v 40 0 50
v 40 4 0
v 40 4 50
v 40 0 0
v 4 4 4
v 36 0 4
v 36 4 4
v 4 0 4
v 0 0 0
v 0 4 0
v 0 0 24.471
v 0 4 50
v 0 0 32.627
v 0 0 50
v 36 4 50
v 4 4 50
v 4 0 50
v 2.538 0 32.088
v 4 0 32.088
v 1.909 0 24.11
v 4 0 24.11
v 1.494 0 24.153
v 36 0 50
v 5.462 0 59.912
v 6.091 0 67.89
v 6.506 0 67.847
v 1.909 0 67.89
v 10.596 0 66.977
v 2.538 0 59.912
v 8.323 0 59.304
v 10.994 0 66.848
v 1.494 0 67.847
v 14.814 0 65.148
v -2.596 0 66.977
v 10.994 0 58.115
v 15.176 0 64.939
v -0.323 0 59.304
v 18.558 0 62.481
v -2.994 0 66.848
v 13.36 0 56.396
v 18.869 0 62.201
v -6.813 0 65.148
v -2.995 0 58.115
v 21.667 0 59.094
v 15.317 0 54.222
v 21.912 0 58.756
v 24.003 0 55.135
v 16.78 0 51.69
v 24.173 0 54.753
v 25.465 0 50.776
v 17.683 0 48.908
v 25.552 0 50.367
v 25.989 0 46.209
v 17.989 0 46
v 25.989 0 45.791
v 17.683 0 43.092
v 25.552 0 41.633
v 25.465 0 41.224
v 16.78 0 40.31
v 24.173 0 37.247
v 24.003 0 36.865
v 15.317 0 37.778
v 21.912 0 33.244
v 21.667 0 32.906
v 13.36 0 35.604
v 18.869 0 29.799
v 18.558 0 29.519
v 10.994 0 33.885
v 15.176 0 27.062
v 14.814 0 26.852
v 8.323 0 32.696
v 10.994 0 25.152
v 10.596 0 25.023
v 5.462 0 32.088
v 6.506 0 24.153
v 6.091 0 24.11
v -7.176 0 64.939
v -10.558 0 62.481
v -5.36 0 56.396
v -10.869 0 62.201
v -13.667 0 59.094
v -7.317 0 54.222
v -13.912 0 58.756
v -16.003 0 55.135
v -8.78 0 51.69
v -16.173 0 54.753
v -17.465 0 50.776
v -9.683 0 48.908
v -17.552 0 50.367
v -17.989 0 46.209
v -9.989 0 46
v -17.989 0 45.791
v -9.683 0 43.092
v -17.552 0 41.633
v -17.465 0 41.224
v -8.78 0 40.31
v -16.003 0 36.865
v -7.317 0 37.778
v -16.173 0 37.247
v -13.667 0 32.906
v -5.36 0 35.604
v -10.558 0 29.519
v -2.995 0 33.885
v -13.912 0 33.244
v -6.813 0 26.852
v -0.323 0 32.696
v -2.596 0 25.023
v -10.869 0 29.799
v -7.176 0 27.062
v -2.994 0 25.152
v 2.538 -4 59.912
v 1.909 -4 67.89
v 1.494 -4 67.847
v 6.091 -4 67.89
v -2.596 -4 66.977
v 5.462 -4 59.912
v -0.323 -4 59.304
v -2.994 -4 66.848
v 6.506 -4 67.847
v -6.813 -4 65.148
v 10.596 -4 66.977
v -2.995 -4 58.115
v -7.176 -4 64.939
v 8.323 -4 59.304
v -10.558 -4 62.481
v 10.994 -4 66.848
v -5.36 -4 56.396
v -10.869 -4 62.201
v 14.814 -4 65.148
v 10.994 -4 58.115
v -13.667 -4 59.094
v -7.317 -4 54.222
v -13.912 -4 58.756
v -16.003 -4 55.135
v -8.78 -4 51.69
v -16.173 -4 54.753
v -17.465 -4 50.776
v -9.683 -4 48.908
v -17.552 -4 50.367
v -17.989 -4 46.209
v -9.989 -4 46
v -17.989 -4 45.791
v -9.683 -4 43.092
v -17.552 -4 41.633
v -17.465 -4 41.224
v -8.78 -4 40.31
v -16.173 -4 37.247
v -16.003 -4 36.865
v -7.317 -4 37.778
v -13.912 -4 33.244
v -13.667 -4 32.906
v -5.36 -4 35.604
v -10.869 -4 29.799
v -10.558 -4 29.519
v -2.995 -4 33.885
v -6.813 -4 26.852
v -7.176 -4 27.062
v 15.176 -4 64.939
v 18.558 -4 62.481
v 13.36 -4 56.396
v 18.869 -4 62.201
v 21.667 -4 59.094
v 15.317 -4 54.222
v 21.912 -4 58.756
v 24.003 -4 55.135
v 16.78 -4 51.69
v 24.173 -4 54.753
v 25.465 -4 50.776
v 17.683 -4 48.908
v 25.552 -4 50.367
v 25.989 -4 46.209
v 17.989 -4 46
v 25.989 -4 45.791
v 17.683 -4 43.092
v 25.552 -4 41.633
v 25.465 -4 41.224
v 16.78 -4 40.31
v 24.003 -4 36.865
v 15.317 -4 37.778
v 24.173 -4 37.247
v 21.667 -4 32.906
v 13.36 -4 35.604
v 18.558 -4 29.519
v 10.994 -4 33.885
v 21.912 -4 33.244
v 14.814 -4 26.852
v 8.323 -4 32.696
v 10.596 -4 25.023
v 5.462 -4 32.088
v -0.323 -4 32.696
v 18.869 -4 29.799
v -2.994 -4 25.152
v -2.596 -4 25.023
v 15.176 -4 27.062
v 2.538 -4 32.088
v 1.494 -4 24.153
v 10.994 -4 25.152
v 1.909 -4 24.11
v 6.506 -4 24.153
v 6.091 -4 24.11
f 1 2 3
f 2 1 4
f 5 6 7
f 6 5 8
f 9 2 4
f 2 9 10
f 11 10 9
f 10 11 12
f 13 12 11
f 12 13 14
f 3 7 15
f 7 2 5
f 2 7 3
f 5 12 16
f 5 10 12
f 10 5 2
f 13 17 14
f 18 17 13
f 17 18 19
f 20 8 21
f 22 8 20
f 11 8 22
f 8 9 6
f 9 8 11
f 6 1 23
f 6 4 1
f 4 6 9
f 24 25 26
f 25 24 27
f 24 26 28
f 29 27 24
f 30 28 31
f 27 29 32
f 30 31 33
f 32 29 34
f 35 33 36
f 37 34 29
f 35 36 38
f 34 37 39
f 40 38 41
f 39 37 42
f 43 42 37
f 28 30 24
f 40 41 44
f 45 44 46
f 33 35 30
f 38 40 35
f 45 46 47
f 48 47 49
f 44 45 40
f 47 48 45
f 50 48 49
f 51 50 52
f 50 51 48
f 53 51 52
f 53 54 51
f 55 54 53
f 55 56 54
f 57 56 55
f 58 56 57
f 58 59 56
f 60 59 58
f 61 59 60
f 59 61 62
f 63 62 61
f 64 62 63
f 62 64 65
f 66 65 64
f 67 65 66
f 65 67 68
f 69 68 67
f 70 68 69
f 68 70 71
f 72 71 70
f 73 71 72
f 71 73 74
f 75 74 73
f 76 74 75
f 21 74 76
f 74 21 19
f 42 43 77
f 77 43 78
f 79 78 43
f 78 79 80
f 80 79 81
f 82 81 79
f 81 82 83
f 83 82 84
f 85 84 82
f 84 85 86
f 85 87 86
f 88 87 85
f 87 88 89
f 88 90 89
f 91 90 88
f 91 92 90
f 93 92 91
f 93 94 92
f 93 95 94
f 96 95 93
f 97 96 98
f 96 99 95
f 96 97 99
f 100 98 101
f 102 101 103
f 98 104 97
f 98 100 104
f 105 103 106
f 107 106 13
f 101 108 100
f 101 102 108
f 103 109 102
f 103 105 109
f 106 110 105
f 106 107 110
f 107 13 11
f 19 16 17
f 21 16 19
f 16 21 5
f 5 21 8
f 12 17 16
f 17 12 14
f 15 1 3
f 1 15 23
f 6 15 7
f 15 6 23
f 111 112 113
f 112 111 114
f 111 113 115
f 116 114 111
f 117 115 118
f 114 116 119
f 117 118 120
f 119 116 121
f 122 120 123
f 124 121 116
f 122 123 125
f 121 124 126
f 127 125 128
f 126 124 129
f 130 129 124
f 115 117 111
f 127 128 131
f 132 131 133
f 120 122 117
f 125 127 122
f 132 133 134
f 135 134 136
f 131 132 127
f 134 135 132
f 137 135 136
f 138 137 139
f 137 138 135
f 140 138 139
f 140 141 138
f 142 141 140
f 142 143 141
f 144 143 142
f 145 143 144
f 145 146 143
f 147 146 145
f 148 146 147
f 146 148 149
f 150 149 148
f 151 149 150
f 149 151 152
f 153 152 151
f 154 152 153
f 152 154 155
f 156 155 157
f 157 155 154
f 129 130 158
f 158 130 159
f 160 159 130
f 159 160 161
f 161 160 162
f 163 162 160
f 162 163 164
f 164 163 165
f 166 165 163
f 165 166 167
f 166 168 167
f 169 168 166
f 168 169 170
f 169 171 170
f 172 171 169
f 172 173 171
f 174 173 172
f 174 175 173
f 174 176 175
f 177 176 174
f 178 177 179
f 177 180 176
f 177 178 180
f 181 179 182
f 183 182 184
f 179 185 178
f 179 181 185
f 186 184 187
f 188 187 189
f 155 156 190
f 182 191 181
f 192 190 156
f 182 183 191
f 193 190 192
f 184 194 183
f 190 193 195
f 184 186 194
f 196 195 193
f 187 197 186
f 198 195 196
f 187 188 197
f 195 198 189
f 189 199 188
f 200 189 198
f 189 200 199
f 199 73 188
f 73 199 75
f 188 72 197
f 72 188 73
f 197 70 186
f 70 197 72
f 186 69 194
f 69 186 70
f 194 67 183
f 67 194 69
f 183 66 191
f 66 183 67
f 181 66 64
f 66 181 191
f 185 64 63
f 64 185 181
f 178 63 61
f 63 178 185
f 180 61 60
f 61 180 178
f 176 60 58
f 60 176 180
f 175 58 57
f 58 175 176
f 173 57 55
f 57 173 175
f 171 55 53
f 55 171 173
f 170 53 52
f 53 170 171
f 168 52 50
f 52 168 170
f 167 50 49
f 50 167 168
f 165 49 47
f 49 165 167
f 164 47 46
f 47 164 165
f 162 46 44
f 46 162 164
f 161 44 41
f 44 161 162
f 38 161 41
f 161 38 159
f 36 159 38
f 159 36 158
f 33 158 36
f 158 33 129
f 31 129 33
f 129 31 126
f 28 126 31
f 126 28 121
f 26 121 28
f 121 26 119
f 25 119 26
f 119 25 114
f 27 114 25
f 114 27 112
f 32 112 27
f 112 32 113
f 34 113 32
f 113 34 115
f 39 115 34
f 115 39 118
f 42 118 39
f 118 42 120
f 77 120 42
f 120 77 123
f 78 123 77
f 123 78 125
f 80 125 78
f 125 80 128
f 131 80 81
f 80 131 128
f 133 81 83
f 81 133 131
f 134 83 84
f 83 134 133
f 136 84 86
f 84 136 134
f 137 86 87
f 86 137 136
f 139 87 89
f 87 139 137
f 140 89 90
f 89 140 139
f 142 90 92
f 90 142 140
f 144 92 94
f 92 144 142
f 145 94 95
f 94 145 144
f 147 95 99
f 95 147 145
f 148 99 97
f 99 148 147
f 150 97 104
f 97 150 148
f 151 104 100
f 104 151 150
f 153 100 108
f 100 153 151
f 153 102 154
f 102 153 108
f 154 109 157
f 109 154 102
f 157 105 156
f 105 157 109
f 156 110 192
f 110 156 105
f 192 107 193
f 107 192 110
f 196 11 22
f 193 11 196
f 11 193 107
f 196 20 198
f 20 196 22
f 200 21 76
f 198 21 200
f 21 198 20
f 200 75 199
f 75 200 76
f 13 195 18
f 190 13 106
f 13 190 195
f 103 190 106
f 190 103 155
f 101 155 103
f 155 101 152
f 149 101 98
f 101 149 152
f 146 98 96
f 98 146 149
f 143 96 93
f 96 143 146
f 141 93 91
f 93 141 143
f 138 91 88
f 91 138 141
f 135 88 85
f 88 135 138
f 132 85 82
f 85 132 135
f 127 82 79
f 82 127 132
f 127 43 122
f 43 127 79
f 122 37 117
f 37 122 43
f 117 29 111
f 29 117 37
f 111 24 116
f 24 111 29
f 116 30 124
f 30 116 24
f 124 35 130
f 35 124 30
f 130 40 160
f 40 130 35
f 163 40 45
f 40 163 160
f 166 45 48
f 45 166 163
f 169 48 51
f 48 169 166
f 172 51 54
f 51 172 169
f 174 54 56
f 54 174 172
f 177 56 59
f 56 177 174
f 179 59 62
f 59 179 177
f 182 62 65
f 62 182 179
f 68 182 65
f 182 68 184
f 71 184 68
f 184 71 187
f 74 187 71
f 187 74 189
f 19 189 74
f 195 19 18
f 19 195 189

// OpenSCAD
// Parameters
bracket_width = 40;     // Width of the U-shape
bracket_height = 50;    // Height of the U-shape
thickness = 4;          // Thickness of the bracket (cross-section)
radius = bracket_width / 2; // Radius for the top arc

module u_shaped_bracket() {
    difference() {
        // Outer shape
        union() {
            // Bottom horizontal bar
            cube([bracket_width, thickness, thickness]);

            // Left vertical bar
            translate([0, 0, 0])
                cube([thickness, thickness, bracket_height]);

            // Right vertical bar
            translate([bracket_width - thickness, 0, 0])
                cube([thickness, thickness, bracket_height]);

            // Top arc (semi-cylinder)
            translate([thickness, 0, bracket_height - thickness])
                rotate([90, 0, 0])
                    linear_extrude(height = thickness)
                        offset(r = thickness / 2)
                            difference() {
                                circle(r = radius);
                                circle(r = radius - thickness);
                            }
        }
    }
}

// Call the module
u_shaped_bracket();
